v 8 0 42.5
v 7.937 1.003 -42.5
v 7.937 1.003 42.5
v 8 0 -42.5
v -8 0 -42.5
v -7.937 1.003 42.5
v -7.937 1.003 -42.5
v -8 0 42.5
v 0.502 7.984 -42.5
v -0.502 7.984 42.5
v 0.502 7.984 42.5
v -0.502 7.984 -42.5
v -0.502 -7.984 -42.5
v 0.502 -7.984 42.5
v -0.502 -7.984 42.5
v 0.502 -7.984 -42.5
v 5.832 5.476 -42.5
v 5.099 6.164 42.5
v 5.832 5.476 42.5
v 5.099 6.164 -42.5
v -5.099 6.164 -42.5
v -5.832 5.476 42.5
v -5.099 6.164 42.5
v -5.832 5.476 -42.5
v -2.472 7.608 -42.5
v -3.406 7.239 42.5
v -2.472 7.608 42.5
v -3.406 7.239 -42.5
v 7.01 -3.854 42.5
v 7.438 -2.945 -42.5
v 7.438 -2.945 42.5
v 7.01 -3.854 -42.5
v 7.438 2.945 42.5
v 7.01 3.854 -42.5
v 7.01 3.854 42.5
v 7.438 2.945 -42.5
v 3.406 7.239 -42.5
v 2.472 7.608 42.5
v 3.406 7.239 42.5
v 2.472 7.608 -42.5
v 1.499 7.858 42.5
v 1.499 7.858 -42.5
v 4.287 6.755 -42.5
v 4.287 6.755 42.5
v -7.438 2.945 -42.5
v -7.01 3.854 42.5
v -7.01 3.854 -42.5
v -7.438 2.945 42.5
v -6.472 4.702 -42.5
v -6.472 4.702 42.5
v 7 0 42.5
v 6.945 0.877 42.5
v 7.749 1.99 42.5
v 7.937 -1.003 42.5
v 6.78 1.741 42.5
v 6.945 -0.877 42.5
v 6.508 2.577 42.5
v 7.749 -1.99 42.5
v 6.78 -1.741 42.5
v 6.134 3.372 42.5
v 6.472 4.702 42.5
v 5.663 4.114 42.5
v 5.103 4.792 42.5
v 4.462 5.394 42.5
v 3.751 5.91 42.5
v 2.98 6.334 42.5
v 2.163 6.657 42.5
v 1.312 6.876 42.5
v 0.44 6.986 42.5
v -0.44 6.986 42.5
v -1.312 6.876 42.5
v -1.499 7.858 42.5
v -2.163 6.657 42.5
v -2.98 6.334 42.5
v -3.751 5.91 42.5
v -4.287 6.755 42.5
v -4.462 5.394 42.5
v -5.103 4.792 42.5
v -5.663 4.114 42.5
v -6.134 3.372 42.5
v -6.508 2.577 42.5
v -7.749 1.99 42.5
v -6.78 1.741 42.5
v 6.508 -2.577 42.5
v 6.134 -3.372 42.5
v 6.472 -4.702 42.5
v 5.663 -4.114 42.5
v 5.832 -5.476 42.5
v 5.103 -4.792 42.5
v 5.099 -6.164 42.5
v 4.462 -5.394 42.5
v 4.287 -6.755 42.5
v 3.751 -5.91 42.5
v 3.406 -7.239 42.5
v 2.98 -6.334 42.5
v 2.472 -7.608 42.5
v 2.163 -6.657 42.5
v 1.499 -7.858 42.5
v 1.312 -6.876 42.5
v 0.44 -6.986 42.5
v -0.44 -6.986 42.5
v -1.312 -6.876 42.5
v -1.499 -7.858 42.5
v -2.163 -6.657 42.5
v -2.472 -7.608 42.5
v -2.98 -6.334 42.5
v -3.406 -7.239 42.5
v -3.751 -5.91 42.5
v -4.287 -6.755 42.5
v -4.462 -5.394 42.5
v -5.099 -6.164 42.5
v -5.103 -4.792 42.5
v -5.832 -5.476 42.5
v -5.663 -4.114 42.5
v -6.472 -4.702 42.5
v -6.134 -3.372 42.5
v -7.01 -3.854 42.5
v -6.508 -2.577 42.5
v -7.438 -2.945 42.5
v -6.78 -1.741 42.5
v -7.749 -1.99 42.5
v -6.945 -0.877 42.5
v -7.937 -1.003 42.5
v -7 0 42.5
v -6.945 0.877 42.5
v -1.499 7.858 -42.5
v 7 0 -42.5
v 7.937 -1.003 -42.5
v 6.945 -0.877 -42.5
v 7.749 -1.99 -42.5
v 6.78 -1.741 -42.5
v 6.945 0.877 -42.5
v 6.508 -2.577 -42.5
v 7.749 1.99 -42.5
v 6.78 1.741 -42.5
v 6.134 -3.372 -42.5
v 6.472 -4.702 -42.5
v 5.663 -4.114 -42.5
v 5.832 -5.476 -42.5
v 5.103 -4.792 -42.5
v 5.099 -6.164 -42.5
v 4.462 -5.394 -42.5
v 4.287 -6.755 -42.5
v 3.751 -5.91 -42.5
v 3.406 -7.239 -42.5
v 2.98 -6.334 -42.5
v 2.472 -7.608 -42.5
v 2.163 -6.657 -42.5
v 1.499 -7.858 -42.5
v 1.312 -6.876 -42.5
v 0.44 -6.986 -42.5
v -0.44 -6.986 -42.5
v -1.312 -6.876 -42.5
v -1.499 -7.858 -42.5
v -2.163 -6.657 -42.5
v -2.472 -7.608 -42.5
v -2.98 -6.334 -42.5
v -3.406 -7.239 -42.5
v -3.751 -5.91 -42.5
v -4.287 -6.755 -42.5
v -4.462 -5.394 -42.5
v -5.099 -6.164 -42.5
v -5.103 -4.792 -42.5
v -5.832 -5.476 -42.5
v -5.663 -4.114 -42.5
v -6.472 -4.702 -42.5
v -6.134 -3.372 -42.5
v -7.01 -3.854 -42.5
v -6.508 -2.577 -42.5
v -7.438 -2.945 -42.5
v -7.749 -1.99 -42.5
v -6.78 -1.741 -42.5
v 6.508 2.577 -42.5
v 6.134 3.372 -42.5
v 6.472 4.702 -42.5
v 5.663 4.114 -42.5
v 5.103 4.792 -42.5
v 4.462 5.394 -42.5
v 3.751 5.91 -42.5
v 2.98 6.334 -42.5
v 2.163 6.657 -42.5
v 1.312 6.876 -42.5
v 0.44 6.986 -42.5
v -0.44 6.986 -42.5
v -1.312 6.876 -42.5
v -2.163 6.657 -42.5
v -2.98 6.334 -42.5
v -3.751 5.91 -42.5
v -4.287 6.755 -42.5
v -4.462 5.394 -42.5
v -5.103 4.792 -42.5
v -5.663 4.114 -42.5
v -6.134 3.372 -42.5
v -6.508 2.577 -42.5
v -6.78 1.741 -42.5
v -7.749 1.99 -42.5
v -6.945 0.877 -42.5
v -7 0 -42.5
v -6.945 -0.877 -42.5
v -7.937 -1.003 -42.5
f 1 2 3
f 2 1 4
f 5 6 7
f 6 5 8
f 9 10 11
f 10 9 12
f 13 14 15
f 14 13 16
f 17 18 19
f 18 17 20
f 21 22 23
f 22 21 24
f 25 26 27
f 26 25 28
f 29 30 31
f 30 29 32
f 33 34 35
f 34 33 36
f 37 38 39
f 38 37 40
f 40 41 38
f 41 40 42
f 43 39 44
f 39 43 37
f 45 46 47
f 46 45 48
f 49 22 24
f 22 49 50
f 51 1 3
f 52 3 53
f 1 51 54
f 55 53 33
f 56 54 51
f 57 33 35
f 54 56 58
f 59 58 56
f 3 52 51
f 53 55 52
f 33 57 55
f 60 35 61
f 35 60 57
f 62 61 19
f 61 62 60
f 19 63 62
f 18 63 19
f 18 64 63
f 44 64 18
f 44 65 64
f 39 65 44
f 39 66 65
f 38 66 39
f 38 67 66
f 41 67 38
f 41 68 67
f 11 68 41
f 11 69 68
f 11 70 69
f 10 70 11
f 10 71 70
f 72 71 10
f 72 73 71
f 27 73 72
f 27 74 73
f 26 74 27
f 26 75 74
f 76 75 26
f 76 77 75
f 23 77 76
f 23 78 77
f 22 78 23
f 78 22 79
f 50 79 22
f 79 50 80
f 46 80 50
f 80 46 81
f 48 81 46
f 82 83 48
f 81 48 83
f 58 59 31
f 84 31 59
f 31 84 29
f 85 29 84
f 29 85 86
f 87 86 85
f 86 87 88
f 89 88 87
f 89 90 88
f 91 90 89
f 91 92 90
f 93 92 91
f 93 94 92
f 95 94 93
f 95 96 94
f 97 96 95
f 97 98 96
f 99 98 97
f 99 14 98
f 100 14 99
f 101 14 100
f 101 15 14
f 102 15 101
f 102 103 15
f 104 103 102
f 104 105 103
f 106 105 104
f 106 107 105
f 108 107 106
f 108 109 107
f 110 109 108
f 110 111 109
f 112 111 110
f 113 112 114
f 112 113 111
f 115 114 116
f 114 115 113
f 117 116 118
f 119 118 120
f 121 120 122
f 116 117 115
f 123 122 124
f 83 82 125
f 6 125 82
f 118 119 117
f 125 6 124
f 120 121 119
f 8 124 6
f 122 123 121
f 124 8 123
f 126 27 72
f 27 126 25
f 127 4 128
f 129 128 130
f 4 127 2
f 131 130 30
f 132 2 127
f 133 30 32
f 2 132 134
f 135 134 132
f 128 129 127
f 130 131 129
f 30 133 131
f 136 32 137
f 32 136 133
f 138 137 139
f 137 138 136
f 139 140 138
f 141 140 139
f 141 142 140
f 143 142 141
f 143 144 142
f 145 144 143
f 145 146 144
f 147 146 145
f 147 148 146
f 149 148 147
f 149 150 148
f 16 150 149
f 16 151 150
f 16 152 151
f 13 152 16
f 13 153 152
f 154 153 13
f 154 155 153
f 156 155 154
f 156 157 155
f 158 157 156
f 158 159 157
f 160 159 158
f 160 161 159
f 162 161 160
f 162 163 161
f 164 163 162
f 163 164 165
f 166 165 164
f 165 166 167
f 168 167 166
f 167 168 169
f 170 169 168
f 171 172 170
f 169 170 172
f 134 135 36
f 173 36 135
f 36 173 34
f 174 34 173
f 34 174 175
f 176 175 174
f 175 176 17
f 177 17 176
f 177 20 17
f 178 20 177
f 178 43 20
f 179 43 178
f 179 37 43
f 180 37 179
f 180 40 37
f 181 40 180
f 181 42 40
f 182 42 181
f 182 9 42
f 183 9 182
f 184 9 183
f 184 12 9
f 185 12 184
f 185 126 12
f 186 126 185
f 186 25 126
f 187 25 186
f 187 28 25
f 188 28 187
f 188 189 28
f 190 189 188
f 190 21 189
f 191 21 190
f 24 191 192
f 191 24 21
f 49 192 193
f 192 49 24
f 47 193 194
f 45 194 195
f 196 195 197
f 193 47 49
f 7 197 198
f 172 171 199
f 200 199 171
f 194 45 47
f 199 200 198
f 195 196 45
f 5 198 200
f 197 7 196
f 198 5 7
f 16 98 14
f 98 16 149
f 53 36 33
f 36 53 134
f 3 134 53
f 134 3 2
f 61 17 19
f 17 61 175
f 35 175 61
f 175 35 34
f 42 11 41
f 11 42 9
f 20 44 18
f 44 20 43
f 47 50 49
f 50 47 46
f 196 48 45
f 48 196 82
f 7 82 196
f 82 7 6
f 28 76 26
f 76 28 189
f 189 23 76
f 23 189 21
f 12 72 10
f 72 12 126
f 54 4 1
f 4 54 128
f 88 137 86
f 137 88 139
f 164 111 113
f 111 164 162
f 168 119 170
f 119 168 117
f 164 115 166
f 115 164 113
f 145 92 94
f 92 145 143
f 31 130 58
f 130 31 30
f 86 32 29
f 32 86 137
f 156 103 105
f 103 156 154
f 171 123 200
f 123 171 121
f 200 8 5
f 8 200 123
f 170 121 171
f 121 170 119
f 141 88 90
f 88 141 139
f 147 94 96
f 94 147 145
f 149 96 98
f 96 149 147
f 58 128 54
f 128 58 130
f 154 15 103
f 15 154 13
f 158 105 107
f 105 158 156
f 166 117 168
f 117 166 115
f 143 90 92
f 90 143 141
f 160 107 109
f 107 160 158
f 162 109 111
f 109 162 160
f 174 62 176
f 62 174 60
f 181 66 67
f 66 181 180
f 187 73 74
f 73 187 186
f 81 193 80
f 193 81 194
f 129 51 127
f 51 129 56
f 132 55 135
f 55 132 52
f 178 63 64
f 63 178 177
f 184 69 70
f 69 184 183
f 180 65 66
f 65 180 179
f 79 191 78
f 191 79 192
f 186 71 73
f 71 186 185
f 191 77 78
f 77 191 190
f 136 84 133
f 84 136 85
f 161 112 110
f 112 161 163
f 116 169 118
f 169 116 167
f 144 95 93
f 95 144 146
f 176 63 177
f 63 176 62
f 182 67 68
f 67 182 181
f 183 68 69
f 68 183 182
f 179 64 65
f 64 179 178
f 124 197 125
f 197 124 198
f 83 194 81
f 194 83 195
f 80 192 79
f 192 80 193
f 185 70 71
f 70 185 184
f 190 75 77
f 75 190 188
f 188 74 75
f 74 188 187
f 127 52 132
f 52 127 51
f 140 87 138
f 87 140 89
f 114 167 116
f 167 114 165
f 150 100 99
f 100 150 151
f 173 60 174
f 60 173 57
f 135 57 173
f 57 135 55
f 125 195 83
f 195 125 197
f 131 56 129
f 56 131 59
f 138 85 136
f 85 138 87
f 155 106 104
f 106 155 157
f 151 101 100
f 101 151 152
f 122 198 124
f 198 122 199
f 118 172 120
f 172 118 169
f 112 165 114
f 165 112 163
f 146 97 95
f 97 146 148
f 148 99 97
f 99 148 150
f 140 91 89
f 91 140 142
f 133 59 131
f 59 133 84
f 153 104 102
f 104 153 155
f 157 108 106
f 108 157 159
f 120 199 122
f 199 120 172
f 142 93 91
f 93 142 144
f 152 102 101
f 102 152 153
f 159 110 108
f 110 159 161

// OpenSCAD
$fn = 50;


difference() {
	union() {
		translate(v = [0, 0, -42.5000000000]) {
			cylinder(h = 85, r = 8.0000000000);
		}
	}
	union() {
		translate(v = [0, 0, -100.0000000000]) {
			cylinder(h = 200, r = 7);
		}
	}
}
